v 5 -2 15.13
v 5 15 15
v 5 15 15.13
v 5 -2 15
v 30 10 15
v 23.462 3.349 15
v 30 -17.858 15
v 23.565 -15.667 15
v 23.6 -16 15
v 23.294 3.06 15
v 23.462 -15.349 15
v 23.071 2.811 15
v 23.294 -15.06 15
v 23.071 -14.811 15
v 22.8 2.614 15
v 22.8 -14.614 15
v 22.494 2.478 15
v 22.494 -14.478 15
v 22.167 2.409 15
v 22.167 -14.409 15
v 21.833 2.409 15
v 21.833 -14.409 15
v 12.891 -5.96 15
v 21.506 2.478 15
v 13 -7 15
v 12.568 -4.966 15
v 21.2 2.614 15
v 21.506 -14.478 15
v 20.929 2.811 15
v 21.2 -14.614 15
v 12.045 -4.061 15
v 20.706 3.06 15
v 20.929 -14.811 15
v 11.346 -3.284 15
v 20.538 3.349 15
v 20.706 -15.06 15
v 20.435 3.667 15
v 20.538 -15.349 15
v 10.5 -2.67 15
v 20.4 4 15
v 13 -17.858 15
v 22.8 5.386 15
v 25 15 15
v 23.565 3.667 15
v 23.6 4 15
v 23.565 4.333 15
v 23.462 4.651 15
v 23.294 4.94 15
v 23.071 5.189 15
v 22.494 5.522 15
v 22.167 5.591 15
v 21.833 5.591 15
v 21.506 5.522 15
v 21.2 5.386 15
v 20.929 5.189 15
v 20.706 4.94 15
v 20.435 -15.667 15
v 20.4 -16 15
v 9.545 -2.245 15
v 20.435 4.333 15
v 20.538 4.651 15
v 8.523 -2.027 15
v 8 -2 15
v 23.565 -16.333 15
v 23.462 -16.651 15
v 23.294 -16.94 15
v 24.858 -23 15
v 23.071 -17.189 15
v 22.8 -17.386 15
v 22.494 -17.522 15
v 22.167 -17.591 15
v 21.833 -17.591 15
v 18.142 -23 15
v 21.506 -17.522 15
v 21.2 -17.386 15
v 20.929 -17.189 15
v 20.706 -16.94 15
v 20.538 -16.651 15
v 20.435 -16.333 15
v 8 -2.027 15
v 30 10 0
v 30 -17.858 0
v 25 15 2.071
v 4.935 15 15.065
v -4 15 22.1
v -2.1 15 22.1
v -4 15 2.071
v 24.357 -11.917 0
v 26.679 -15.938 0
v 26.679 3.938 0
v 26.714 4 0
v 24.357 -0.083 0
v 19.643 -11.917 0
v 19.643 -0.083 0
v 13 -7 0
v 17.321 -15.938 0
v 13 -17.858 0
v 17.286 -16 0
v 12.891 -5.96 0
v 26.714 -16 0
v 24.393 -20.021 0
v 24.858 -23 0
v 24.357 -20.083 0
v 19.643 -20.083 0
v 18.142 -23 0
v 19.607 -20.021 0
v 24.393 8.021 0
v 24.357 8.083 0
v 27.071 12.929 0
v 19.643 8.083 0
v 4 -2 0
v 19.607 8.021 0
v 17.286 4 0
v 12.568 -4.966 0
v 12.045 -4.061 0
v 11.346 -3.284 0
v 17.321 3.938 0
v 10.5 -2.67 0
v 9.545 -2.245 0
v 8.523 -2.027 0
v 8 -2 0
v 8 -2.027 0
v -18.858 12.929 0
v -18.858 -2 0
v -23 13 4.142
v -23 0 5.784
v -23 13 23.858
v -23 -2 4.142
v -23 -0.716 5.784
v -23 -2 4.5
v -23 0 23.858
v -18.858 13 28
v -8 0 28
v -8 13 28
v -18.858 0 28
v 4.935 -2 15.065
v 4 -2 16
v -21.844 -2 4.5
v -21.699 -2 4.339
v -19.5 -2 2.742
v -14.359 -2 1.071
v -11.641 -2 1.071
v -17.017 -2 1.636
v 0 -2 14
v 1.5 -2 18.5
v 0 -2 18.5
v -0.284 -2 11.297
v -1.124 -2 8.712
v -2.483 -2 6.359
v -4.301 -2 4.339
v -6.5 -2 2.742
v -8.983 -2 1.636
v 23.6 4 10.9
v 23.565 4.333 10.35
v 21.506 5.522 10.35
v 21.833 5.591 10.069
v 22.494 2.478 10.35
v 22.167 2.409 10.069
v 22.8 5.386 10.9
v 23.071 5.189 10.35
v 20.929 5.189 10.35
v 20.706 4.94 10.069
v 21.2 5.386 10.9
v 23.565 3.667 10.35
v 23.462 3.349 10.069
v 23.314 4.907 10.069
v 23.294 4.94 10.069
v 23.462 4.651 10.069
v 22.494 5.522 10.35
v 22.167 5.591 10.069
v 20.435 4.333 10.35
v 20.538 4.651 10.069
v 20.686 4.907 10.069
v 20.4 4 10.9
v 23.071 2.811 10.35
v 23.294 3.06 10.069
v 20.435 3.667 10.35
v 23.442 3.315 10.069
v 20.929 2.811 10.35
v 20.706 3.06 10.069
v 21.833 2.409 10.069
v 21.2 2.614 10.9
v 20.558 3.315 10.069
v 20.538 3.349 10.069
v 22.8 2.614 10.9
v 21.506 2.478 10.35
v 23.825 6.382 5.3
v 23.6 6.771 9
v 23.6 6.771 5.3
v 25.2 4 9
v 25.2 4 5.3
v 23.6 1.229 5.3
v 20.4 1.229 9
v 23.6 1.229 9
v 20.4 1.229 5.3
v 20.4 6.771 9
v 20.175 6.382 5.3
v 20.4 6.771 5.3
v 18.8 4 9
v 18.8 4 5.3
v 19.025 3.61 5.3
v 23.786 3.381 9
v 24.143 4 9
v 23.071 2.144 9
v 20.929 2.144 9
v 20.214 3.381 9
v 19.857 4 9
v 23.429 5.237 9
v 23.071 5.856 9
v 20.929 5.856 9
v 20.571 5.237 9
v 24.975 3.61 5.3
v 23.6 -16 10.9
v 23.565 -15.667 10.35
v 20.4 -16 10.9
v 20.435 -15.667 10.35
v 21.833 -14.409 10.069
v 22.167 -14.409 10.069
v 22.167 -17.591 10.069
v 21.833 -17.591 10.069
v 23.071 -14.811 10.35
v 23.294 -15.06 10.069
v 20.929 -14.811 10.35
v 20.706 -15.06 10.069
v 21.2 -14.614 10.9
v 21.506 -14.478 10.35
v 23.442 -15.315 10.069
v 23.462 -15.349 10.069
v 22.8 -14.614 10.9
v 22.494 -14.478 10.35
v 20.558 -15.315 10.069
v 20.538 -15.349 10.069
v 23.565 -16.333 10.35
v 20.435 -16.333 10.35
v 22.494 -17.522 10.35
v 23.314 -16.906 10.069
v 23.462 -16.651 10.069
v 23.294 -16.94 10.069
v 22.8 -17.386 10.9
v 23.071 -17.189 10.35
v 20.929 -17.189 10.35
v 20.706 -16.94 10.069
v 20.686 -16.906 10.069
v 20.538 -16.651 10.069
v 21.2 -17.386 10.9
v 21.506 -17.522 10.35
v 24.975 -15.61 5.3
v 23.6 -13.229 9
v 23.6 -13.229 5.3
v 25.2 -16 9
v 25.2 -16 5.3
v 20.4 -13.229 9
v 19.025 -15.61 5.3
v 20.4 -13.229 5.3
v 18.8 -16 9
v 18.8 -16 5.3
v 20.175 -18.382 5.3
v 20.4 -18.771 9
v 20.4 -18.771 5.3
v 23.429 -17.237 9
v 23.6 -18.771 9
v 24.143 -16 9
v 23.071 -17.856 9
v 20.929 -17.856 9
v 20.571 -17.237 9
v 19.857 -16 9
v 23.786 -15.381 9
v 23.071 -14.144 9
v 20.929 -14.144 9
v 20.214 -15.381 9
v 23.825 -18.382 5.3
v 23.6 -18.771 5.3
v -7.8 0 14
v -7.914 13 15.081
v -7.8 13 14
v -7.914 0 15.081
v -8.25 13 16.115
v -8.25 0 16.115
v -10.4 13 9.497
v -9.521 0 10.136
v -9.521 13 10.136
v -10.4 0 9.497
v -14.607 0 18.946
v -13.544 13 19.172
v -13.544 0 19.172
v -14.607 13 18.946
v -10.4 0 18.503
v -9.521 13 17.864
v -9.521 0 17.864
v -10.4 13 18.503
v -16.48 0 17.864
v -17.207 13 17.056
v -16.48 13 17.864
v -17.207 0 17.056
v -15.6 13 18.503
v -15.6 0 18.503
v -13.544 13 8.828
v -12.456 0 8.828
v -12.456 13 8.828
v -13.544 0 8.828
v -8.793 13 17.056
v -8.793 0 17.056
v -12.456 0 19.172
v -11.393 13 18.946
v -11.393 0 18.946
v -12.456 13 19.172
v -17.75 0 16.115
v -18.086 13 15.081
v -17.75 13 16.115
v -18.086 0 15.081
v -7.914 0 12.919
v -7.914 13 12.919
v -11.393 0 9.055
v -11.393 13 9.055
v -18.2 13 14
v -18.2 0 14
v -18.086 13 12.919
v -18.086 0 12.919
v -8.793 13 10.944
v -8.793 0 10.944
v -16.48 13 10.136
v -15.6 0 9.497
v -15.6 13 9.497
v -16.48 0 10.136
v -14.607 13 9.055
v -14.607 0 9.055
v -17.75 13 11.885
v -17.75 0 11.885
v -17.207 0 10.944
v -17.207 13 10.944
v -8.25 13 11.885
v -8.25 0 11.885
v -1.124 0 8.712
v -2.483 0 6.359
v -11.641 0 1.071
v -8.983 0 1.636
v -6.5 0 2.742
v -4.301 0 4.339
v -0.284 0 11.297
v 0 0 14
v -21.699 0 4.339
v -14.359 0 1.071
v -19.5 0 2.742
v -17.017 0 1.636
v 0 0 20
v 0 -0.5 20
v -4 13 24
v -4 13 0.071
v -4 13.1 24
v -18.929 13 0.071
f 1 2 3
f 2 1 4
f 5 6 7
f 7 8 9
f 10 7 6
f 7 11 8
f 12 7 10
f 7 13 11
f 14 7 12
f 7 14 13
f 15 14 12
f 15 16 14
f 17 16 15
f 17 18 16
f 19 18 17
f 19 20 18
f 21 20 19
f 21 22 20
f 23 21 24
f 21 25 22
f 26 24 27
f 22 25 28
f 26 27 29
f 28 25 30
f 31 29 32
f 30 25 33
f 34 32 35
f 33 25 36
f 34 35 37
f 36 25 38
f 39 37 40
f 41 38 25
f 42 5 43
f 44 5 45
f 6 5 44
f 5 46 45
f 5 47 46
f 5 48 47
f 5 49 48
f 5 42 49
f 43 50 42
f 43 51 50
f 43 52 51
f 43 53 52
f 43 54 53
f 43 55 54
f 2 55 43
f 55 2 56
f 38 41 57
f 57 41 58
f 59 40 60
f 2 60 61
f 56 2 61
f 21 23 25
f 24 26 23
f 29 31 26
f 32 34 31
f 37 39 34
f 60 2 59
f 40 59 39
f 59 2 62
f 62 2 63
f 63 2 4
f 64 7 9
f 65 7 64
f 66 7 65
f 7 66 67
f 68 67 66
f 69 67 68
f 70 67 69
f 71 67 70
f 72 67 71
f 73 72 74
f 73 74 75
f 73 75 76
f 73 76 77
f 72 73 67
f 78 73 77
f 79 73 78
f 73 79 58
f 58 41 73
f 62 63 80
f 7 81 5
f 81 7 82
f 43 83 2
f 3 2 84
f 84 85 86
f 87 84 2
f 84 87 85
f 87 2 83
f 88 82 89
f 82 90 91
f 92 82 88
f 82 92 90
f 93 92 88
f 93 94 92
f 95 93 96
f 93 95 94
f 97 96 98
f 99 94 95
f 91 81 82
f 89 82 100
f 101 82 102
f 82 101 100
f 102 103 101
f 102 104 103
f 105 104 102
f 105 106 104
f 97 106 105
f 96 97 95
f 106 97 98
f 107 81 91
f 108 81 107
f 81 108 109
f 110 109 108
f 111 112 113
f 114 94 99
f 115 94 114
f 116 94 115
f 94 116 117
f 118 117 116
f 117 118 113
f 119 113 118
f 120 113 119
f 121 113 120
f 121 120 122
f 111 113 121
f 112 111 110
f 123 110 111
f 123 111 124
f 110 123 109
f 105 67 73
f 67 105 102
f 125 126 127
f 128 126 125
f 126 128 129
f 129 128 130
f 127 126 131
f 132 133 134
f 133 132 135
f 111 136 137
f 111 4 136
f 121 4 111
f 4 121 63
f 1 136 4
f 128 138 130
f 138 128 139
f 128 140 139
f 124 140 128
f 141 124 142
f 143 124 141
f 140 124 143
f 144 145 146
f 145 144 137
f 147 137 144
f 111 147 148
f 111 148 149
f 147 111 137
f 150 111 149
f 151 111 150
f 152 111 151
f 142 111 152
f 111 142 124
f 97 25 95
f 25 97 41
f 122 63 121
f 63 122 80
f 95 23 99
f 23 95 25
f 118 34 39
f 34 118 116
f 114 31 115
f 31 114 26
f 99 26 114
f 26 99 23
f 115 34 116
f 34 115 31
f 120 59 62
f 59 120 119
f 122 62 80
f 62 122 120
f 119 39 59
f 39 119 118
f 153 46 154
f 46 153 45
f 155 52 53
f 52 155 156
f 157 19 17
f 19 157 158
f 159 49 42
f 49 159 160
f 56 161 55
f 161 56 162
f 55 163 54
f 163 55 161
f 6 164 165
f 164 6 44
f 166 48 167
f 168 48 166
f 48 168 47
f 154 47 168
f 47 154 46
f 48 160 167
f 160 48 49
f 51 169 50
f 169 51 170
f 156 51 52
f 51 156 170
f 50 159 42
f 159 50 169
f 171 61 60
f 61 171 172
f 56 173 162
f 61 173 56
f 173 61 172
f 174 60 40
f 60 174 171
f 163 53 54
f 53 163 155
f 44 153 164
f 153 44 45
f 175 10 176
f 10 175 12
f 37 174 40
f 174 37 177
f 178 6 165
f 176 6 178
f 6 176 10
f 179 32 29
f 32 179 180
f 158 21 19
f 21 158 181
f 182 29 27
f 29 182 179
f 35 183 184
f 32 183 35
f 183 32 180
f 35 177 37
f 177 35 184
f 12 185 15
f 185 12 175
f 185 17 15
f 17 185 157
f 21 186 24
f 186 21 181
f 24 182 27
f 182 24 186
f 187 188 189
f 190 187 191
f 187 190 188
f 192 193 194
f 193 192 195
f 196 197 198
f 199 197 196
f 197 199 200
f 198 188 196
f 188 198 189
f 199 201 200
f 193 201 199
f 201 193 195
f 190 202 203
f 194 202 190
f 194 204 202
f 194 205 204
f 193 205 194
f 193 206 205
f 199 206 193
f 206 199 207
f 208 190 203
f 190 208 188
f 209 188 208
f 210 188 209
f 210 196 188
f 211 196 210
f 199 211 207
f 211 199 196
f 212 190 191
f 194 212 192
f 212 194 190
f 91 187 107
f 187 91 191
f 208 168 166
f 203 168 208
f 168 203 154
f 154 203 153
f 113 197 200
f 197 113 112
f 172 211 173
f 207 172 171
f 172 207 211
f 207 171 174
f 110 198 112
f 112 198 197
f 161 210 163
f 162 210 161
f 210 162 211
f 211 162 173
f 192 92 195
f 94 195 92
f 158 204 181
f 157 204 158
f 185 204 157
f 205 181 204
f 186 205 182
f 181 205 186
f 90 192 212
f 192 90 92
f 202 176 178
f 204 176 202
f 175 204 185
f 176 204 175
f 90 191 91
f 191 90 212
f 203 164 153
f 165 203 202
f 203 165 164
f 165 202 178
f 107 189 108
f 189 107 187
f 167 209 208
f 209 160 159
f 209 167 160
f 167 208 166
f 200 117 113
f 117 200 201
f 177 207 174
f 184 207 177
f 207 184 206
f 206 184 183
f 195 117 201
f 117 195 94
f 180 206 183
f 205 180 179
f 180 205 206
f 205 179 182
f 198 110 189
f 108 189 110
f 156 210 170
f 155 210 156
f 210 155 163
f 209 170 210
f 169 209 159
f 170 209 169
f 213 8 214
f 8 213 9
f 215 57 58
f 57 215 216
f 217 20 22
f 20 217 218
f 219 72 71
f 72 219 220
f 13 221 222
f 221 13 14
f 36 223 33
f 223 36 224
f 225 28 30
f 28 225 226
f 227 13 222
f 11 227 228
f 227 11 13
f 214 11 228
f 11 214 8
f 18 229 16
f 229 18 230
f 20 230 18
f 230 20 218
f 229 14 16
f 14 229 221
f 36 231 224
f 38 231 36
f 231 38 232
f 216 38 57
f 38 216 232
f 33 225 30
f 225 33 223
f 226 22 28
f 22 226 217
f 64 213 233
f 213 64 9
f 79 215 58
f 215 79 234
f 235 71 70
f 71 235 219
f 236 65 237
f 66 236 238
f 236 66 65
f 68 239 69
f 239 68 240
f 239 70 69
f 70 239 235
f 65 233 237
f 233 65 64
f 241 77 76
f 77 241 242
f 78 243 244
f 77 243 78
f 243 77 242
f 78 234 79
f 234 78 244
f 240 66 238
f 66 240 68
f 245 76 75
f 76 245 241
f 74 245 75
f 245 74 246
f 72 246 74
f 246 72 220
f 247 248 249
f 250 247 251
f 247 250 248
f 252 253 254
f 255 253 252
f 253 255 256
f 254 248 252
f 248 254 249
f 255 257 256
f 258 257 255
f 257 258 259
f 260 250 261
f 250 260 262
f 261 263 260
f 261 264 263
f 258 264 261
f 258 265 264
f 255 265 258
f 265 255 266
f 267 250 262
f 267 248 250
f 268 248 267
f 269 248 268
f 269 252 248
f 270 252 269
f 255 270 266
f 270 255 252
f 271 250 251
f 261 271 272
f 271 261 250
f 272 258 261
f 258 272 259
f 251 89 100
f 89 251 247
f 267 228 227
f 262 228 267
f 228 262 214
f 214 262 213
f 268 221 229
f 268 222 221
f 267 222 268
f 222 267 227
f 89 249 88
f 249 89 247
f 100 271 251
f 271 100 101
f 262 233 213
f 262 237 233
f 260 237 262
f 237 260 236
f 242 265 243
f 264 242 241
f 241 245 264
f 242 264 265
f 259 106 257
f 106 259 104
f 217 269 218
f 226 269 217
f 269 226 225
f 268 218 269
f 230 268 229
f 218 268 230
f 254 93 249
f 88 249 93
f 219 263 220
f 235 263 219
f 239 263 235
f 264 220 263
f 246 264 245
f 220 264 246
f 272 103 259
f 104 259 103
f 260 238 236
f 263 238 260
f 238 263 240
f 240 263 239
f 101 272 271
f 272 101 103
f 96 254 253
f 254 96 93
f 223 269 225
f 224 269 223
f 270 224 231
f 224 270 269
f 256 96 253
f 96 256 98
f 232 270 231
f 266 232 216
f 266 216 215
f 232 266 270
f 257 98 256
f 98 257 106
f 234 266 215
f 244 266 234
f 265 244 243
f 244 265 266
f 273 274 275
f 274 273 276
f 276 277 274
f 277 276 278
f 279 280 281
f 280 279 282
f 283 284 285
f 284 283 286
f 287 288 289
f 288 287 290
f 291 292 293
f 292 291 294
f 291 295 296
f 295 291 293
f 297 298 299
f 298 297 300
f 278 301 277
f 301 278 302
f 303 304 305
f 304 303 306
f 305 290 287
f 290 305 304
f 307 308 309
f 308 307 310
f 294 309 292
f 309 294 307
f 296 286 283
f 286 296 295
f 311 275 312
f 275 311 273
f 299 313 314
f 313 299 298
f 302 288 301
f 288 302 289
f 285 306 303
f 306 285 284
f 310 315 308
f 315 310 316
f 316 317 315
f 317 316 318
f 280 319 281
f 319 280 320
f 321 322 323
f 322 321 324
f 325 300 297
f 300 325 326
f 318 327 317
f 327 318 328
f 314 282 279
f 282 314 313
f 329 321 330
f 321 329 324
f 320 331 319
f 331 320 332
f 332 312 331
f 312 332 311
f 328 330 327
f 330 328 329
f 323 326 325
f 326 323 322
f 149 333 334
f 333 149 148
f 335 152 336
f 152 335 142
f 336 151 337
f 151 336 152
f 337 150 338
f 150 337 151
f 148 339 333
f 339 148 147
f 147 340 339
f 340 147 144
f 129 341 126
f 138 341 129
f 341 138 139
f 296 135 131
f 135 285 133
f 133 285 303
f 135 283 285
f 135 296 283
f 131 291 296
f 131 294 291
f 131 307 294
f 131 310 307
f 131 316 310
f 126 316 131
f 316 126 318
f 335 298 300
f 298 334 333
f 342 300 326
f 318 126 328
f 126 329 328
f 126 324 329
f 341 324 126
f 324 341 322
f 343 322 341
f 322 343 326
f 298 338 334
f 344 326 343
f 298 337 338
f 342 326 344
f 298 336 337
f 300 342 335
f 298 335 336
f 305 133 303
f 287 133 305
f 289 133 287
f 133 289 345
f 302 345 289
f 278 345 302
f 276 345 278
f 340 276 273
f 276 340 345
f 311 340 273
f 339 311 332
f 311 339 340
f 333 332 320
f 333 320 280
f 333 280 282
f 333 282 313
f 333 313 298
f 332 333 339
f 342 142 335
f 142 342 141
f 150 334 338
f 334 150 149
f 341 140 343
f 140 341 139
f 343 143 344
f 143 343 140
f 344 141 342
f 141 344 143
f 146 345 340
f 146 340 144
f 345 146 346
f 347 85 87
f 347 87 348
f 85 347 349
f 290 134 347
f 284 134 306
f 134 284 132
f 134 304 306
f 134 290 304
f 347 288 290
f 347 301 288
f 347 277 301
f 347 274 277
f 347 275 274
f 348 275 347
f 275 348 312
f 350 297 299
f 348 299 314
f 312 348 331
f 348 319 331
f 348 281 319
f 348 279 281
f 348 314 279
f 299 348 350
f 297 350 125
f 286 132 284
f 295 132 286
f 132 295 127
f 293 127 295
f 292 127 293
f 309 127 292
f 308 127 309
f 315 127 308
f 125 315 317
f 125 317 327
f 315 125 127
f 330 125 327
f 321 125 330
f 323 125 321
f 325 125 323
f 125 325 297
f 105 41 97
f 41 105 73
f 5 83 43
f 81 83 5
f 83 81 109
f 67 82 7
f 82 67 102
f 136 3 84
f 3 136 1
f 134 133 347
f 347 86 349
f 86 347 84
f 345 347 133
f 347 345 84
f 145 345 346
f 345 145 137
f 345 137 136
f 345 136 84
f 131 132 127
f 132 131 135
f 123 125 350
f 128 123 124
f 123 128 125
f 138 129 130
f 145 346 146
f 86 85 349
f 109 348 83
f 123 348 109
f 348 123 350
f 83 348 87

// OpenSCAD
// PRUSA iteration3
// PSU-Y reinforcement part 
// GNU GPL v3
// Josef Průša <iam@josefprusa.cz> and contributors
// http://www.reprap.org/wiki/Prusa_Mendel
// http://prusamendel.org

module base()
{
union(){
    difference(){
        union(){
        translate([ 5, -23, 0 ]) cube([ 25, 38, 15 ]);  // horizontal plate
        translate([ -23, -2, 0 ]) cube([ 28, 17, 28 ]);  // Y_Corner block    
        }
        translate( [ 4 , -25 , -1 ] ) cube( [ 9 , 23 , 18 ] );  //  holder side cut
    }
    difference(){    
        translate([ 8, -7, 0 ]) cube([ 5, 5, 15 ]);  // fillet block
        translate([ 8, -7, -1 ]) cylinder( h = 28, r = 5, $fn=30);  // fillet cut
        }
    }
}


module cutout()
    {
    translate([ 22, 4 , -2 ]) cylinder( h = 20, r = 1.6, $fn=30);  // M3 hole A
    translate([ 22, 4 , -1 ]) cylinder( h = 10, r = 3.2, $fn=6);  // M3 nut body A        
    translate([ 22, 4 , -1 ]) cylinder( h = 14, r1 = 3.2, r1 = 5, $fn=6);  // M3 nut hole fillet A
        
    translate([ 22, -16 , -2 ]) cylinder( h = 20, r = 1.6, $fn=30);  // M3 hole B
    translate([ 22, -16 , -1 ]) cylinder( h = 10, r = 3.2, $fn=6);  // M3 nut body B
    translate([ 22, -16 , -1 ]) cylinder( h = 14, r1 = 3.2, r1 = 5, $fn=6);  // M3 nut hole B fillet

    translate([ -13, 14 , 14 ]) rotate([90,0,0]) cylinder( h = 25, r = 5.2, $fn=30);  // threaded rod
    
    translate([ -13, 0 , 14 ]) rotate([90,0,0]) cylinder( h = 4, r = 13, $fn=30);  // washer
    translate([ -29, -7 , 14 ])  cube([ 29, 7, 18 ]);  // washer upper cut
    
    translate([ -24, 13 , -1 ]) cube([ 20, 15, 30 ]);  // Y_Corner cutaway

    //vertical corners 45 degree cut
    translate( [ 12, -31 , -2 ] ) rotate( [0,0,45] ) cube([ 10 , 10 , 21 ]);  
    translate([ 31,  9, -2 ])  rotate( [0,0,45] ) cube([ 10, 10, 21 ]);  
    translate([ 31, -31, -2 ]) rotate( [0,0,45] ) cube([ 10, 10, 21 ]);  

    // horizontal corners 45 degree cut
    translate([ -8.5, -8, 28.5 ]) rotate( [0,45,0] ) cube([ 19, 40, 20 ]);  
    translate([ -31, -6, 30 ]) rotate( [0,45,0])  cube([ 10, 35, 10 ]);  
    translate([ -31, -6, -2 ]) rotate( [0,45,0] ) cube([ 10, 35, 10 ]);  
    translate([ -26, -4,  2.5 ]) rotate( [45,0,0] ) cube([ 5, 5, 5 ]);  
    translate([ -1, -4, 16.5 ]) rotate( [45,0,0] ) cube([ 5, 5, 5 ]);  
    translate([ -5, 16.6, 20.5 ]) rotate( [45,0,0] ) cube([ 5, 5, 5 ]);  
    translate([ -30, 15, -5 ]) rotate( [45,0,0] ) cube([ 70, 5, 5 ]);  
}

module final_part(){
difference()
{
    base();
    cutout();
    }
}

final_part();
